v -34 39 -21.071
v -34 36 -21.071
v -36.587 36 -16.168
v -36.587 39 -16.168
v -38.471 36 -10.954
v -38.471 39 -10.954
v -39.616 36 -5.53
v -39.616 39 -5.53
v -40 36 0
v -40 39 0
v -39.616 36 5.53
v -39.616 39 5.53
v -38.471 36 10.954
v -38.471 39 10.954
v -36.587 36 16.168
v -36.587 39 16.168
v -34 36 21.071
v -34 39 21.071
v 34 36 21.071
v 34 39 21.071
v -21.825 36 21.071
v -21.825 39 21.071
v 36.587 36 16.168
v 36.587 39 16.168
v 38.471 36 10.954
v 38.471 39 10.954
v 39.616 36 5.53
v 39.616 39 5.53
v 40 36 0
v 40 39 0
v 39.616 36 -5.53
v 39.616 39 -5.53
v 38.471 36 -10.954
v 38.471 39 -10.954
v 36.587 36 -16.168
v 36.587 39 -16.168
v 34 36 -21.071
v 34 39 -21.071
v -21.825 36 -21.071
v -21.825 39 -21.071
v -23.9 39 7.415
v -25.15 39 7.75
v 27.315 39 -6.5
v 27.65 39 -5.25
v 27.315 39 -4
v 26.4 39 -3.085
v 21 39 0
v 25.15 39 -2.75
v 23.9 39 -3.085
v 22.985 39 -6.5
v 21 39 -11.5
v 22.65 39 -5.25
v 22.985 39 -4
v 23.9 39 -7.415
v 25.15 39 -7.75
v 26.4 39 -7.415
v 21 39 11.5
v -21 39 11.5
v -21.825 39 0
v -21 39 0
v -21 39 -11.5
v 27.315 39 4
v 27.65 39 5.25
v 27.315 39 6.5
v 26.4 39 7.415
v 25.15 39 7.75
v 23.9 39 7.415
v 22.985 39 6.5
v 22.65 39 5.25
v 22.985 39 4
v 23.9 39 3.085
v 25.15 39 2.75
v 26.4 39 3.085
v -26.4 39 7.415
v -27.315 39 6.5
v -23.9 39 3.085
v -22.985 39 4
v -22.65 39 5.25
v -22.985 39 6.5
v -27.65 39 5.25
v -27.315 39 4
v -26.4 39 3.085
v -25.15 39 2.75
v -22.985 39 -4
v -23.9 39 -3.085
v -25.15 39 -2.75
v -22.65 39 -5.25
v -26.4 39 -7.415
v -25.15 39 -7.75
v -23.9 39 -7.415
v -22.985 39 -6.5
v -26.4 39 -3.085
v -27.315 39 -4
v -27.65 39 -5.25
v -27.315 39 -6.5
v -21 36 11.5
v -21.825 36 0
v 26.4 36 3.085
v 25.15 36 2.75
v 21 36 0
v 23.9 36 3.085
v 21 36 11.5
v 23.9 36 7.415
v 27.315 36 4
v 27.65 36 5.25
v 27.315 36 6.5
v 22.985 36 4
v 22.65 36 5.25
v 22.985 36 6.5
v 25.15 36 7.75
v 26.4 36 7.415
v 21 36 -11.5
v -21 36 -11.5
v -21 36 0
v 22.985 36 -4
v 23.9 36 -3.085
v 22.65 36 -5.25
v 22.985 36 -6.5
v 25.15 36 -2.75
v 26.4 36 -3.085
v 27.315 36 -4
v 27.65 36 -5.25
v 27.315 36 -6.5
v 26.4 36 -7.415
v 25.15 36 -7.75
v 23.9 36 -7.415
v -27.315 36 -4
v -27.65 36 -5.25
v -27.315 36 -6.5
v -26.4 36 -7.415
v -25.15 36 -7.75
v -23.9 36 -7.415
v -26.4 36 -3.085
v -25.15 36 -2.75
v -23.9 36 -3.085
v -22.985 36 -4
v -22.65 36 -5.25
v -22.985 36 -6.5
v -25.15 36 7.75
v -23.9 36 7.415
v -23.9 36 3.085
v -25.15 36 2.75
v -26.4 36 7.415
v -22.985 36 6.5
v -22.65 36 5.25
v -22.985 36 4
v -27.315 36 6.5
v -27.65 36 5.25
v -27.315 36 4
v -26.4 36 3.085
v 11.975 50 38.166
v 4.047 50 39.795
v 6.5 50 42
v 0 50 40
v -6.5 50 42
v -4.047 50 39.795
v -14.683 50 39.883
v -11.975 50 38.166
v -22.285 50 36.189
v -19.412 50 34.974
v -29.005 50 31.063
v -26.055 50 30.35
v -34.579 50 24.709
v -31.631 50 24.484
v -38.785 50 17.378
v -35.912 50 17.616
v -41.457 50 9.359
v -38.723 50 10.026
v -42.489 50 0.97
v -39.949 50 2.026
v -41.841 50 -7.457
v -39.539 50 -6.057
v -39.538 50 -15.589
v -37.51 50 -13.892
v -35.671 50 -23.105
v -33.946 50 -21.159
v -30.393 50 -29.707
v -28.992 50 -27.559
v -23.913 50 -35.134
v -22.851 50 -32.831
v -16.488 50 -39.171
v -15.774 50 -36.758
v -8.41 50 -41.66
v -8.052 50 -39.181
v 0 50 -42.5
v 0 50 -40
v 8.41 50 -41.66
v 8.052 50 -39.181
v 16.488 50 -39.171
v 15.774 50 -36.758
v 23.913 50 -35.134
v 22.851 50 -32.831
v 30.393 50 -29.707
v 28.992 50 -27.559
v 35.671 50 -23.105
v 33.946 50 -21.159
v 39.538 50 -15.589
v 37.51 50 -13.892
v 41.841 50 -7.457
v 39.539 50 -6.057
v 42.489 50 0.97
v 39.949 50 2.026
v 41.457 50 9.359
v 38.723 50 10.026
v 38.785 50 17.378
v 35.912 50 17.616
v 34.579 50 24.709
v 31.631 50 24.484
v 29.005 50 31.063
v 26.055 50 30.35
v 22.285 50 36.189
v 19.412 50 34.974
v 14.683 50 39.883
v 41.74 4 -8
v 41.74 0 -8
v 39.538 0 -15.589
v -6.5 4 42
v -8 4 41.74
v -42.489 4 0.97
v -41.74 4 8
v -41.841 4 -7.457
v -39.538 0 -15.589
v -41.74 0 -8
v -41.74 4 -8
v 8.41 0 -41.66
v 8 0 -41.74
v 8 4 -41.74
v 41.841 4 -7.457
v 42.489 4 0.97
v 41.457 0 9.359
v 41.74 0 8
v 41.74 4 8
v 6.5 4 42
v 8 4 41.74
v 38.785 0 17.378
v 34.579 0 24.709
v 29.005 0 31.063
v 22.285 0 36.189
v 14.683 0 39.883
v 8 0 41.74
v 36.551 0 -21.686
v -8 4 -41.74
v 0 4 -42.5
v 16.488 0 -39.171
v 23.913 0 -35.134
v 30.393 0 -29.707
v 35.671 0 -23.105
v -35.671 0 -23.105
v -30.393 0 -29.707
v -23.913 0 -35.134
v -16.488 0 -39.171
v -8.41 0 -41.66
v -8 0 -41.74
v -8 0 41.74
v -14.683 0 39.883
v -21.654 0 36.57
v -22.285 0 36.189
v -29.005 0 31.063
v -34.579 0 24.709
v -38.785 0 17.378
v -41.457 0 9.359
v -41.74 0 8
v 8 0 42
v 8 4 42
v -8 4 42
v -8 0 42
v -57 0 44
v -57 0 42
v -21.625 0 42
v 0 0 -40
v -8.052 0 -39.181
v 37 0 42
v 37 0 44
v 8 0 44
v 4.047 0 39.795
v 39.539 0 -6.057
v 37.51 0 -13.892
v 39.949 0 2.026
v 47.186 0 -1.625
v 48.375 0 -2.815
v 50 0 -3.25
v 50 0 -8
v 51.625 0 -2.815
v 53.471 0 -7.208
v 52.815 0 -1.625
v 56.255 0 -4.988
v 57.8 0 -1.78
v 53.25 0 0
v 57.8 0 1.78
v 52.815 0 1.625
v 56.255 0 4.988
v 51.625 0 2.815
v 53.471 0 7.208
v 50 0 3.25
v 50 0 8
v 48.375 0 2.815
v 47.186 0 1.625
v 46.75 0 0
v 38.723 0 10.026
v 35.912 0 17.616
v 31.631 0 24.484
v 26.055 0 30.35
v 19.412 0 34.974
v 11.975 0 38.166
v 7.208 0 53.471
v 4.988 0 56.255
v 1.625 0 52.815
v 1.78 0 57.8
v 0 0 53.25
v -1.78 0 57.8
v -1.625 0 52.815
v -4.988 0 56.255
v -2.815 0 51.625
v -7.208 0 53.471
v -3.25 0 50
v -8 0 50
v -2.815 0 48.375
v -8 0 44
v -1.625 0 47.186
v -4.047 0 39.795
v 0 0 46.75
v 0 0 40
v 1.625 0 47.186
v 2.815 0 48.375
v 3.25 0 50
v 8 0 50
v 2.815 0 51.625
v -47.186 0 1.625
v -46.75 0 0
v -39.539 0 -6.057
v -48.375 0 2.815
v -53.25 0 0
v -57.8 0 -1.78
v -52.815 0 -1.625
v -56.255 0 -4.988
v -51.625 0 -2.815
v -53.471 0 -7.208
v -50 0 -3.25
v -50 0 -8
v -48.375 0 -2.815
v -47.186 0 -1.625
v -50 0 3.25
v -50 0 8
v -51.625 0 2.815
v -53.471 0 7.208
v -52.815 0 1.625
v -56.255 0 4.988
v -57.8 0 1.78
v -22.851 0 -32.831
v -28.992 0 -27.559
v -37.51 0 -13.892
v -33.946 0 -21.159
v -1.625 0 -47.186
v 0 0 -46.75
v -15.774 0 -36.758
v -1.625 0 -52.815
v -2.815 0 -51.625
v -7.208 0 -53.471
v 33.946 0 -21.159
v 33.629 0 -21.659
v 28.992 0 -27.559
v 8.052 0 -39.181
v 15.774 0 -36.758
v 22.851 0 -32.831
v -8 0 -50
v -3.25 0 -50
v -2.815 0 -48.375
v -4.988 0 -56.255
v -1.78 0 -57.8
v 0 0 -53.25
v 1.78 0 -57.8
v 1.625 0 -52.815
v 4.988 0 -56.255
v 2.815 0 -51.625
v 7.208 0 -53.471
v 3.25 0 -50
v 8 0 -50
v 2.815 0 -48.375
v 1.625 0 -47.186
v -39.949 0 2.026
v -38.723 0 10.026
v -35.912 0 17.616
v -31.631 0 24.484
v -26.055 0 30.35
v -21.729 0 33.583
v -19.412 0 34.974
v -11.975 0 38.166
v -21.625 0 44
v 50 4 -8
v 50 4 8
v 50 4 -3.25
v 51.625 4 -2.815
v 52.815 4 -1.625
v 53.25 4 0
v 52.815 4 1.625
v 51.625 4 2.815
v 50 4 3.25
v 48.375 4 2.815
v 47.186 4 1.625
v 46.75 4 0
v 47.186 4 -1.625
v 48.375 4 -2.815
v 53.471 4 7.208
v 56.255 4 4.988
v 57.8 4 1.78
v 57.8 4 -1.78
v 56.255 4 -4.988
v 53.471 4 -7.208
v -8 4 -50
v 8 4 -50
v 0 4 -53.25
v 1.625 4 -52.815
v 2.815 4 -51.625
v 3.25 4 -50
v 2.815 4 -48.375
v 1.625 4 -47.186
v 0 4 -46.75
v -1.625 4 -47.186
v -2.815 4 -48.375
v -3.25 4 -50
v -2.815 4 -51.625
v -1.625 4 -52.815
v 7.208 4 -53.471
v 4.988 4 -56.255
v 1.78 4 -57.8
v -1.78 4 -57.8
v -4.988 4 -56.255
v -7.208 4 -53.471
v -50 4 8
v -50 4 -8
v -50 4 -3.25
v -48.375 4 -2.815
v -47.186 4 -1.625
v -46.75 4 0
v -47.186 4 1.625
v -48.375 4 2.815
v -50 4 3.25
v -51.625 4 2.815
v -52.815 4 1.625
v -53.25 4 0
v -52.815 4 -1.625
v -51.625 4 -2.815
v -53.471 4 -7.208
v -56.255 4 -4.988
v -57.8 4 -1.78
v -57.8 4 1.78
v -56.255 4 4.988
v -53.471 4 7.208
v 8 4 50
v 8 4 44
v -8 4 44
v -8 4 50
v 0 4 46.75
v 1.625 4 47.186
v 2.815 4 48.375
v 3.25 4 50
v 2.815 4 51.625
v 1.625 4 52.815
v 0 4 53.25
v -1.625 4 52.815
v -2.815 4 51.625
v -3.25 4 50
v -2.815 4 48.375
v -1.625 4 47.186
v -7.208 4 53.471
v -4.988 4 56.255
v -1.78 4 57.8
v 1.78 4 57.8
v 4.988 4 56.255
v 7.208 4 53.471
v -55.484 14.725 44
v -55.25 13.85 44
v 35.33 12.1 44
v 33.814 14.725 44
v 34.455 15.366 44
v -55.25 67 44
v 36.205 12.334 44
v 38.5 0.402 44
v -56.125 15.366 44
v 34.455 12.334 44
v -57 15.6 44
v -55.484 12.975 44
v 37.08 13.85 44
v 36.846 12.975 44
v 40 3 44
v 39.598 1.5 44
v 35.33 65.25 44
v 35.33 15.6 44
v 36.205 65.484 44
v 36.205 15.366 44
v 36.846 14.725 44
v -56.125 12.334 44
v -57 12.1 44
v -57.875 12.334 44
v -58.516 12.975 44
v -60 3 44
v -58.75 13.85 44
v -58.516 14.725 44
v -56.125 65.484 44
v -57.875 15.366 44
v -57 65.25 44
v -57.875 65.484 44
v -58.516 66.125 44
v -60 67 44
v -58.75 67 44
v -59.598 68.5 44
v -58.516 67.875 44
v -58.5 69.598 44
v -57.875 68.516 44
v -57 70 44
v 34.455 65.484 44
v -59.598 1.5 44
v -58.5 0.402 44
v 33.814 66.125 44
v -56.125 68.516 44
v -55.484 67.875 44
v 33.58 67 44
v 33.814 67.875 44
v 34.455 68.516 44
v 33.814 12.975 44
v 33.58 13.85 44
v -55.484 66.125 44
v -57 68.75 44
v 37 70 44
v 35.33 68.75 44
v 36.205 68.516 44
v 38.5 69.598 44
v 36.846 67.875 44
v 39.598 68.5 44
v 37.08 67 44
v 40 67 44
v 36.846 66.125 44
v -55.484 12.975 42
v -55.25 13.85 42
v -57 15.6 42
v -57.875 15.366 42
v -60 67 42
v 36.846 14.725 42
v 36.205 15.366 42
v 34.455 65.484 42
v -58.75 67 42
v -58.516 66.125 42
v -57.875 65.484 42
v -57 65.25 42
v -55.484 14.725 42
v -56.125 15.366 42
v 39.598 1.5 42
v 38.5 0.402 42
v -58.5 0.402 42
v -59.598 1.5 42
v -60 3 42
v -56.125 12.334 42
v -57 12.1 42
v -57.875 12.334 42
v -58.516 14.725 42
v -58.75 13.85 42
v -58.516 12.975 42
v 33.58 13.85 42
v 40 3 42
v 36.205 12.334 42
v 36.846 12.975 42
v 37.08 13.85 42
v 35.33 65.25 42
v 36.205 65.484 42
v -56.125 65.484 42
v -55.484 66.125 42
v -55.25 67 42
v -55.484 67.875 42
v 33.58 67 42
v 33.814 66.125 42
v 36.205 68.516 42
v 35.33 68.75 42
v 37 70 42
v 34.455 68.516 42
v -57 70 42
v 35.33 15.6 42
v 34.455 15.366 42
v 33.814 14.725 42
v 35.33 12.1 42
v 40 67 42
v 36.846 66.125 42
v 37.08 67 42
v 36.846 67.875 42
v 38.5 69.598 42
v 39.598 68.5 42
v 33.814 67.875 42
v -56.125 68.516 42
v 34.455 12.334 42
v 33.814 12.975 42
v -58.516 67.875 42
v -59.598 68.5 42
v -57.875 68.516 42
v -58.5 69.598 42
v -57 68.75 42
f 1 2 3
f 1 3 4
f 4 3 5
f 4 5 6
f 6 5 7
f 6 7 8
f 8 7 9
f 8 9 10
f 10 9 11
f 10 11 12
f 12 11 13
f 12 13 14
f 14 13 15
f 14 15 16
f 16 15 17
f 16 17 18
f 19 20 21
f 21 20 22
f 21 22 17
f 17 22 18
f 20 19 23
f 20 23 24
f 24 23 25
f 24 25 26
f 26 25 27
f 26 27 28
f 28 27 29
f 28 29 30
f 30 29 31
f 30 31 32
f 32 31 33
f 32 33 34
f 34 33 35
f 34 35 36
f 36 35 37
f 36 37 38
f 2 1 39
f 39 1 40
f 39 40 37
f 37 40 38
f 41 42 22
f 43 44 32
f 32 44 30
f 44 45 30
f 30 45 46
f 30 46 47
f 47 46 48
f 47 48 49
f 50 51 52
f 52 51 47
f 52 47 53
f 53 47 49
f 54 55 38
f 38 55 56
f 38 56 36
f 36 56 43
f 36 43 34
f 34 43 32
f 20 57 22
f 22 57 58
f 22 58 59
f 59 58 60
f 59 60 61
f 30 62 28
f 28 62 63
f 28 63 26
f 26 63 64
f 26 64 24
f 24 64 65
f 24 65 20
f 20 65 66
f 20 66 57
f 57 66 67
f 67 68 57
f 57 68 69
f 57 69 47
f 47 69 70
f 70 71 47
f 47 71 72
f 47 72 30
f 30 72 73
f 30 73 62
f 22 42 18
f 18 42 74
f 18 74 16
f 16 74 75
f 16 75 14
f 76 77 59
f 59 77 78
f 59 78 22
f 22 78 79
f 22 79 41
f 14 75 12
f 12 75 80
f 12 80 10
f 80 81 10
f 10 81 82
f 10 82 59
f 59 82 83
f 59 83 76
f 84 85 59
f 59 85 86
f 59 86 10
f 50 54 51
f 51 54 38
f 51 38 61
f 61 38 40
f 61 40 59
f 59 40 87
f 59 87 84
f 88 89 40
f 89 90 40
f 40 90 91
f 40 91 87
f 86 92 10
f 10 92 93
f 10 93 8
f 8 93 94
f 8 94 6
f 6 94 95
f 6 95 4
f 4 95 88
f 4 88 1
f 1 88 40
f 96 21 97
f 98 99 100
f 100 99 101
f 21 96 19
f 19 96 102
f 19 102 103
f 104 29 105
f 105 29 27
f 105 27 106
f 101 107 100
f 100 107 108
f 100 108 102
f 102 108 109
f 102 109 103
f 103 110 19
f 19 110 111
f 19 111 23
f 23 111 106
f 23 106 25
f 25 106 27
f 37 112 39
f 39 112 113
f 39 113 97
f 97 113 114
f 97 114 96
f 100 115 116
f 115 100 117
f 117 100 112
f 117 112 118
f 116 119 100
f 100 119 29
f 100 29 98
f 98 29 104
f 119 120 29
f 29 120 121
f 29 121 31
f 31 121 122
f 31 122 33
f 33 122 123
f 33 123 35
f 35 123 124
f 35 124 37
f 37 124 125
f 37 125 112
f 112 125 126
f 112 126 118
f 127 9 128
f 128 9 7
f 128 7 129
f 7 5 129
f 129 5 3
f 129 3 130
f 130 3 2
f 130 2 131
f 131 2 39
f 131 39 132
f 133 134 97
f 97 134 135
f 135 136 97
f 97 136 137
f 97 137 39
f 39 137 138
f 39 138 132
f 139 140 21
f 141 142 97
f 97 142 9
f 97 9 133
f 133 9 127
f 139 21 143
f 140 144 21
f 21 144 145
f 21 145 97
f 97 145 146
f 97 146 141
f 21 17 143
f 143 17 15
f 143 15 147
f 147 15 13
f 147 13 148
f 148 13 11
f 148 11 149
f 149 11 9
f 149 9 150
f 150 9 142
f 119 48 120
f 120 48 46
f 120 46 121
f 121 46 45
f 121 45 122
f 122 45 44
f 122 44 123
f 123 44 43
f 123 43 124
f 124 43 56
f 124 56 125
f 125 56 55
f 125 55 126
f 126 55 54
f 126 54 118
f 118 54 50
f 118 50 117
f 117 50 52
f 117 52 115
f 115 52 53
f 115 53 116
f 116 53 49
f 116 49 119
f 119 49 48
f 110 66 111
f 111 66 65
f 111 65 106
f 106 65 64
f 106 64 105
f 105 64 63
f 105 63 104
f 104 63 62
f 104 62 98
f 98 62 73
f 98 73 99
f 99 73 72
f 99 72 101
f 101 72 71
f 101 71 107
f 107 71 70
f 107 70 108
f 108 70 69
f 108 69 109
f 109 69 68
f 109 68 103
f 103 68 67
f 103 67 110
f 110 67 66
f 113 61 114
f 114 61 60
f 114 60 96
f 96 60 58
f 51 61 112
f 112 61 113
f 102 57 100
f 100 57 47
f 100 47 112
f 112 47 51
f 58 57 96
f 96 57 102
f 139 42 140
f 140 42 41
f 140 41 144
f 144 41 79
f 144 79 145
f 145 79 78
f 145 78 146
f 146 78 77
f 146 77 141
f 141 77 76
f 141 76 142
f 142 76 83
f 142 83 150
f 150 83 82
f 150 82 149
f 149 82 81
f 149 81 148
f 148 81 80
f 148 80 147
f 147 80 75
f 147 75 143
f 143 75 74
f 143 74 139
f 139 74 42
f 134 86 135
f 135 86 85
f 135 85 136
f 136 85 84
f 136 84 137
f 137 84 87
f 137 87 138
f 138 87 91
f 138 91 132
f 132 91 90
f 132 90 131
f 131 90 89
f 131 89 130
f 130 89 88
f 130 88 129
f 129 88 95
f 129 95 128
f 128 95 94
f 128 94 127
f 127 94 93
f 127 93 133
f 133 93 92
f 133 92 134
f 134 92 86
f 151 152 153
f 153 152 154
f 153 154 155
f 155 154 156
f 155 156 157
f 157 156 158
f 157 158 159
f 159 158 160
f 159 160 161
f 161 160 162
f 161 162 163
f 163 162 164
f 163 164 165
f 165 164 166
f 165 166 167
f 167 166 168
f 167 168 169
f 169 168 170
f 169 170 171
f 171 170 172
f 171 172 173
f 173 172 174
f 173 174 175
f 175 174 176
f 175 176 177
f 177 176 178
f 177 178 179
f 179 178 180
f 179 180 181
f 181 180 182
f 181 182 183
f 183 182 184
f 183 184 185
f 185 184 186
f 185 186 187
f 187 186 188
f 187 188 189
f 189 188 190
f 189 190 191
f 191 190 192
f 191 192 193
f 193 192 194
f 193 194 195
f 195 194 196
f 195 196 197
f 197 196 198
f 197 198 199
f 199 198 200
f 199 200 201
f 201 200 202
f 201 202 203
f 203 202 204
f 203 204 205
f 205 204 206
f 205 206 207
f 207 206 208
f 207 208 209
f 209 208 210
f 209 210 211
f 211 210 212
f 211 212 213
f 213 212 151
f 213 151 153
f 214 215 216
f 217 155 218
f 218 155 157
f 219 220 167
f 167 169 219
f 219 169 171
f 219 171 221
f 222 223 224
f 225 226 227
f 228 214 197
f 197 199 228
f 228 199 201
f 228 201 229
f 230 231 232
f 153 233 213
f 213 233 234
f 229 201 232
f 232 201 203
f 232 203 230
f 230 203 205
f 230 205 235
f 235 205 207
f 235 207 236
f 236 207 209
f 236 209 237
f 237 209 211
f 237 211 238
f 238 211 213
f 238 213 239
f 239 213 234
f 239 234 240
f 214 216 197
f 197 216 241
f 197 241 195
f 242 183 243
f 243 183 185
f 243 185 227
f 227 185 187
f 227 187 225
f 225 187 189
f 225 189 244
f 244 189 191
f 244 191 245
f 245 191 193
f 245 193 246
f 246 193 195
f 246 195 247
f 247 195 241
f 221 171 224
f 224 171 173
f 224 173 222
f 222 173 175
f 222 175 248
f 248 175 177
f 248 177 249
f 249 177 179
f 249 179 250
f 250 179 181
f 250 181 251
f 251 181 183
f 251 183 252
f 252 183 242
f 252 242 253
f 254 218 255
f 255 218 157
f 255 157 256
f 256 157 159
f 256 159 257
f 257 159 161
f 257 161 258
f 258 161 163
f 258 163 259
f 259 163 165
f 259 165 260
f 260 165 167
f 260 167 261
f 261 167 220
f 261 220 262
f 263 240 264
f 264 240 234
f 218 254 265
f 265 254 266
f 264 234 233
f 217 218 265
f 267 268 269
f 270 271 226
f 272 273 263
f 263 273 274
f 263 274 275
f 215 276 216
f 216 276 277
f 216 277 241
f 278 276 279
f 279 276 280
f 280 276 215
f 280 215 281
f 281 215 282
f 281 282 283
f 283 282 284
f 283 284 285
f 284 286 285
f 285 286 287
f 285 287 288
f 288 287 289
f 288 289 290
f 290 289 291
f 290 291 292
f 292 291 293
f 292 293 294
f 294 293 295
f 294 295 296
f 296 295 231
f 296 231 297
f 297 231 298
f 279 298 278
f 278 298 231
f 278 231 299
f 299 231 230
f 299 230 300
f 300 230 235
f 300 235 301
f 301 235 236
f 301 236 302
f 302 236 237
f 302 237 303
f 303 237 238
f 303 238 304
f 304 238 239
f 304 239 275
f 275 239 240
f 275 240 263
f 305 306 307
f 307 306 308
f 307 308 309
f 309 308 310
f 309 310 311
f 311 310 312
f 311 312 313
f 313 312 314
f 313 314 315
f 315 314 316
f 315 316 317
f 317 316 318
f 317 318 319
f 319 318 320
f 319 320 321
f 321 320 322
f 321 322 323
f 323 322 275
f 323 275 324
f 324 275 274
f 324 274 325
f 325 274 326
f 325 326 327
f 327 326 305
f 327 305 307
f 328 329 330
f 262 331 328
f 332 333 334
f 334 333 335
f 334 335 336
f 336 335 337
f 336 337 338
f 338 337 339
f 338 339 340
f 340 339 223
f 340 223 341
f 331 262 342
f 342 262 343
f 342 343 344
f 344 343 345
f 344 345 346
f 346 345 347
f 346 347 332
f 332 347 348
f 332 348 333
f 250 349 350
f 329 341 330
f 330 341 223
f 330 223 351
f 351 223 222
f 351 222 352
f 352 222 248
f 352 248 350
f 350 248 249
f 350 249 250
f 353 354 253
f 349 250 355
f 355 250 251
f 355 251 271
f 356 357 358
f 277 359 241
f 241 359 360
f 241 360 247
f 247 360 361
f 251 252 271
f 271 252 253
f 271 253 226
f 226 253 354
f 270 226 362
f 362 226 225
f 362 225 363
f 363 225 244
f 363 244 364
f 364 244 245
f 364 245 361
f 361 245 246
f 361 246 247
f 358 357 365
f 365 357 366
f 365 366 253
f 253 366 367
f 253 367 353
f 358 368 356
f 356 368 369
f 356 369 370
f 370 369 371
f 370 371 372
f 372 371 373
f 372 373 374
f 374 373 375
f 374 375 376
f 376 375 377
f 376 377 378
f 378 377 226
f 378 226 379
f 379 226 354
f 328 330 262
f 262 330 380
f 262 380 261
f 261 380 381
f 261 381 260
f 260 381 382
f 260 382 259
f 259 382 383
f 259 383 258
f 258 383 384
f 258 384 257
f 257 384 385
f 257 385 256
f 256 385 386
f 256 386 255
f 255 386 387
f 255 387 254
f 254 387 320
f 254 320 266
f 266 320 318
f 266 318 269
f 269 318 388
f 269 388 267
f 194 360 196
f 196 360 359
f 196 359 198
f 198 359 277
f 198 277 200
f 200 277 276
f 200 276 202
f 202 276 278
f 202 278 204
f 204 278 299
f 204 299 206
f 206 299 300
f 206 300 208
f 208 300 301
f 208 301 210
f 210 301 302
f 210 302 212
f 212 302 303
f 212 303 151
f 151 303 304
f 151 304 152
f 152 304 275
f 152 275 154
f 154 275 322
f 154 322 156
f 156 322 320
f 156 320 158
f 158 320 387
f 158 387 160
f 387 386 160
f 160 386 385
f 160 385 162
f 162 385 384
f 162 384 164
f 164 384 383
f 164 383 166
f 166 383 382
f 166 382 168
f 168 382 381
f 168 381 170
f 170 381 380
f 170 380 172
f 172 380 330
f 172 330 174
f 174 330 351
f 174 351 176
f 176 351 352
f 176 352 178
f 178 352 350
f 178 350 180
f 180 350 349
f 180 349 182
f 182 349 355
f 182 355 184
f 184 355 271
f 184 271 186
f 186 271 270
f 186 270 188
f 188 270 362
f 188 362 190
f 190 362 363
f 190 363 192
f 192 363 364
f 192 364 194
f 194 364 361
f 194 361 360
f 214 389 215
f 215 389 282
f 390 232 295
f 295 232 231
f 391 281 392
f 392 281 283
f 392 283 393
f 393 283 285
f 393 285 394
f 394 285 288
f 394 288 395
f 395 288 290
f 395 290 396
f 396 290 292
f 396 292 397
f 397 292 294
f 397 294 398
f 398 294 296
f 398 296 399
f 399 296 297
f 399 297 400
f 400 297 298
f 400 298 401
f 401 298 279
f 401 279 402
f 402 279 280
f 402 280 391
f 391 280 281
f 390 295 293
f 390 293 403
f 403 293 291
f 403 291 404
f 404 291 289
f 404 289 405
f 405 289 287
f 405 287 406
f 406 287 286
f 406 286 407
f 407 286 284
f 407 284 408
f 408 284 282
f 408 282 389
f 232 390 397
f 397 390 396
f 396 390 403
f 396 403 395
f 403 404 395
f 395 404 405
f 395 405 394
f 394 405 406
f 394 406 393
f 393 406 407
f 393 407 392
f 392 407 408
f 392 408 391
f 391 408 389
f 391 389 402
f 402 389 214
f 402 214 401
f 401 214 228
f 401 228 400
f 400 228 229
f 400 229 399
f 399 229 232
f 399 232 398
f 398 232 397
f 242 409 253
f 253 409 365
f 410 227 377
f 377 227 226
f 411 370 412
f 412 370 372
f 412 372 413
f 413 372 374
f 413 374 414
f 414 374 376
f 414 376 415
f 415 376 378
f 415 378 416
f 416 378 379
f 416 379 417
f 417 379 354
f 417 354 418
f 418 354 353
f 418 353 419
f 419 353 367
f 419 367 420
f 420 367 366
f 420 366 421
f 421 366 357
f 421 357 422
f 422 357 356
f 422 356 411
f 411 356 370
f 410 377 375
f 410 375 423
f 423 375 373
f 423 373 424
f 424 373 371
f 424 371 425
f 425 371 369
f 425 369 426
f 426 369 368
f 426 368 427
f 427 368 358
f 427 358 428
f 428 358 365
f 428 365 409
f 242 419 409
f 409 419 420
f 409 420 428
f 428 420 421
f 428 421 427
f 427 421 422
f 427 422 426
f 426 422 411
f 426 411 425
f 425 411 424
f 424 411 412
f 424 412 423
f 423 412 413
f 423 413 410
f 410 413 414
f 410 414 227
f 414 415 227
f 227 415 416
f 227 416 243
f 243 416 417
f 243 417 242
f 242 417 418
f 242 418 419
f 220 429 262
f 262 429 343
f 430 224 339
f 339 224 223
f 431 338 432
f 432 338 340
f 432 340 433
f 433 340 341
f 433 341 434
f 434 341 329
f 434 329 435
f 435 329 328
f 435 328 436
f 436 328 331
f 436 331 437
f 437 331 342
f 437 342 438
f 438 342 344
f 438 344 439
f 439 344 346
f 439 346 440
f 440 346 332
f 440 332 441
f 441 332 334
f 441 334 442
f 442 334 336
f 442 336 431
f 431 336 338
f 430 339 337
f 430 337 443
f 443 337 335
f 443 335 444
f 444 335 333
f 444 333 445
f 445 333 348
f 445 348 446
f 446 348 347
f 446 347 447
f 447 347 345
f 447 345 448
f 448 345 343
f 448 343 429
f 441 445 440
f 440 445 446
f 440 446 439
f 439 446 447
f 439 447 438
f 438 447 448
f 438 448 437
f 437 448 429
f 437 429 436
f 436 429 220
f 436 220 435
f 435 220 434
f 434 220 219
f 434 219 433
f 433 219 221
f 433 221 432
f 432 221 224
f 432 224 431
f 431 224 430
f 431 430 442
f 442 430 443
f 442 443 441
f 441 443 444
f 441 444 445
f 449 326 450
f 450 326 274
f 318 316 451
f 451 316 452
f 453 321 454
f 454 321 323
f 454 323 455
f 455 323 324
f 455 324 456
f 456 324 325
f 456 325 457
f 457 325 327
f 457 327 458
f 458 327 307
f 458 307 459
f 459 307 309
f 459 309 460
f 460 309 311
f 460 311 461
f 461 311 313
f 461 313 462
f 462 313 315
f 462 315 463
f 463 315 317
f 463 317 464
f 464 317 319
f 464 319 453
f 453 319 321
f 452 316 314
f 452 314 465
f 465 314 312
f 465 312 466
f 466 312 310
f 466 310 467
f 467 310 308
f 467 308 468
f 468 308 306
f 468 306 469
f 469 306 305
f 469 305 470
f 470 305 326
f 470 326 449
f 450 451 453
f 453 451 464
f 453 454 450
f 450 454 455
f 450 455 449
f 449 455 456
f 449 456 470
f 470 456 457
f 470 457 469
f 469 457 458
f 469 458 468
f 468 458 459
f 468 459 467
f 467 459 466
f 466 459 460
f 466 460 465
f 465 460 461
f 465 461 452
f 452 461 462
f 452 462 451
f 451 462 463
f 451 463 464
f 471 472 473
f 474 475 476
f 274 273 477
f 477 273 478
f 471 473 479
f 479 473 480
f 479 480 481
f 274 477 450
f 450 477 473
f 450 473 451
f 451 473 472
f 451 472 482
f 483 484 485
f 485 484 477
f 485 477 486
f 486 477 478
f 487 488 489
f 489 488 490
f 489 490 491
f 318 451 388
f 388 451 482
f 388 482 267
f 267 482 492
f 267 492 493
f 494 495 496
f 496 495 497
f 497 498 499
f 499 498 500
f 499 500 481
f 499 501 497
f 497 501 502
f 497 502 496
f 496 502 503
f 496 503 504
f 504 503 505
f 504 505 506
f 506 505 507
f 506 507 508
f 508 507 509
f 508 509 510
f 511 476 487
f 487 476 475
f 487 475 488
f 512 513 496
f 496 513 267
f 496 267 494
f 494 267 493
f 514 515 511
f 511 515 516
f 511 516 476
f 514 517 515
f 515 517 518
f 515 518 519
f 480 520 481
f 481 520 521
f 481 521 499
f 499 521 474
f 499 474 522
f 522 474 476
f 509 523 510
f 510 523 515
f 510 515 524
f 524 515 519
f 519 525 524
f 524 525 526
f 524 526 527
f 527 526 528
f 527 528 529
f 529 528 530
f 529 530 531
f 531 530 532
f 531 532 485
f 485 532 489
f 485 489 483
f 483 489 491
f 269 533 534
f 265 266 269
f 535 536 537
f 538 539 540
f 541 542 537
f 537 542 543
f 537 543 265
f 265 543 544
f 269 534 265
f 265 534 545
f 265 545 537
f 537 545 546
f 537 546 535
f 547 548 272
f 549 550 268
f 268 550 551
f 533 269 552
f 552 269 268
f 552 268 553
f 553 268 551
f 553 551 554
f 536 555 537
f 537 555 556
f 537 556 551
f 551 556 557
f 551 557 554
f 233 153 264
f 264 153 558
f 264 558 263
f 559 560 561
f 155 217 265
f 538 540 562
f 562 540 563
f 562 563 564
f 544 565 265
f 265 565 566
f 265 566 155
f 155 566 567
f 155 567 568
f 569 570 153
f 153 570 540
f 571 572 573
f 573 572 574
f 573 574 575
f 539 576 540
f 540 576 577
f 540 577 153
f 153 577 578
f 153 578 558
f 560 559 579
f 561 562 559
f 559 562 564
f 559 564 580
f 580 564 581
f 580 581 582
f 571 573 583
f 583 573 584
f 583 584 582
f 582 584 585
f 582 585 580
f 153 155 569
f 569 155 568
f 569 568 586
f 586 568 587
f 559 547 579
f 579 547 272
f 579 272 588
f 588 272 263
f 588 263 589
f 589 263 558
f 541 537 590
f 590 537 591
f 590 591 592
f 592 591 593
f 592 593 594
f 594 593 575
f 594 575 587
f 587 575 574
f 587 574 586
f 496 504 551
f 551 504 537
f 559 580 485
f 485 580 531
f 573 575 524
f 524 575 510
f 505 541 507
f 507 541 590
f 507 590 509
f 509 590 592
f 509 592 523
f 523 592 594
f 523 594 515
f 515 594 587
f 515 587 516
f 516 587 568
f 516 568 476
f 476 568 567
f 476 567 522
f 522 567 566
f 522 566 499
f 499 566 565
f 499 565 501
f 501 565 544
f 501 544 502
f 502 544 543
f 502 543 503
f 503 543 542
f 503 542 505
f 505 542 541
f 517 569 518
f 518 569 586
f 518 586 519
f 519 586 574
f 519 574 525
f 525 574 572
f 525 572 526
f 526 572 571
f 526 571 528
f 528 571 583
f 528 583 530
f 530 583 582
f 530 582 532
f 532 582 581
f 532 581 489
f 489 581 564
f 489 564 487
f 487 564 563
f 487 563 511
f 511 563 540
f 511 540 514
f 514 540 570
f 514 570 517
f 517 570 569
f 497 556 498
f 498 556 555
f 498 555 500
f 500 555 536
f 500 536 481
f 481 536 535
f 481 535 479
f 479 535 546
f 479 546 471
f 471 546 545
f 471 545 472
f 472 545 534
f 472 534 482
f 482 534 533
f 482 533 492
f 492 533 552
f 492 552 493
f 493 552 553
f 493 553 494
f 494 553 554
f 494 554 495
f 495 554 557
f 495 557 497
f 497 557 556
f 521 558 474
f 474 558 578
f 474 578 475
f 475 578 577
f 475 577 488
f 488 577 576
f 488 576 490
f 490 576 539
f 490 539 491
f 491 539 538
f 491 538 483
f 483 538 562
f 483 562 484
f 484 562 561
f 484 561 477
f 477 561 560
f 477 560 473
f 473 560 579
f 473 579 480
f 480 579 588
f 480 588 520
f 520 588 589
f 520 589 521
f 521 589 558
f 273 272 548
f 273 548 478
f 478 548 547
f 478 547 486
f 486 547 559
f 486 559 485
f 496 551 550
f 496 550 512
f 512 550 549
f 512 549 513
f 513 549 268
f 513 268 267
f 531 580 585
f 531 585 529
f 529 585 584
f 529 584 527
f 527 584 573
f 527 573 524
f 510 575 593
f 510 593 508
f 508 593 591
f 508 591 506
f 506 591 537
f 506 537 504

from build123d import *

# Parameters (mm, degrees)
SKETCH1_R           = 42.5
SKETCH1_R_2         = 40
BOSS_EXTRUDE1_DEPTH = 50
SKETCH2_R           = 3.25
BOSS_EXTRUDE2_DEPTH = 4
CIRPATTERN1_COUNT   = 4
BOSS_EXTRUDE3_DEPTH = 3
SKETCH3_R           = 2.5
SKETCH3_W           = 42
SKETCH3_H           = 23
CUT_EXTRUDE1_DEPTH  = 3
BOSS_EXTRUDE4_START = 42
SKETCH5_W           = 100
SKETCH5_H           = 70
SKETCH5_R           = 1.75
BOSS_EXTRUDE4_DEPTH = 2
FILLET1_R           = 3


with BuildPart() as part:
    # Sketch1 → Boss-Extrude1 (new body)
    with BuildSketch(Plane(origin=(0, 0, 0), x_dir=(1, 0, 0), z_dir=(0, 1, 0))):
        with Locations(Location((0, 0, 0), (0, 0, 270))):
            Circle(SKETCH1_R)
        with Locations(Location((0, 0, 0), (0, 0, 270))):
            Circle(SKETCH1_R_2, mode=Mode.SUBTRACT)
    extrude(amount=BOSS_EXTRUDE1_DEPTH)

    # Sketch2 → Boss-Extrude2 (add)
    with BuildSketch(Plane.XZ):
        with BuildLine():
            Line((50.000268327, 8), (41.740268327, 8))
            ThreePointArc((41.740268327, 8), (42.309640768, 4.017996771), (42.5, 0))
            ThreePointArc((42.5, 0), (42.309640768, -4.017996771), (41.740268327, -8))
            Line((41.740268327, -8), (50.000268327, -8))
            ThreePointArc((50.000268327, -8), (58.000268327, 0), (50.000268327, 8))
        make_face()
        with Locations(Location((50.000268327, 0, 0), (0, 0, 270))):
            Circle(SKETCH2_R, mode=Mode.SUBTRACT)
    boss_extrude2 = extrude(amount=-BOSS_EXTRUDE2_DEPTH)

    # CirPattern1: Boss-Extrude2 ×4 about axis
    cirpattern1_axis = Axis((0, 0, 0), (0, 1, 0))
    for i in range(1, CIRPATTERN1_COUNT):
        add(boss_extrude2.rotate(cirpattern1_axis, i * 360 / CIRPATTERN1_COUNT))

    # Sketch5 → Boss-Extrude4 (add)
    with BuildSketch(Plane.XY.offset(BOSS_EXTRUDE4_START)):
        with Locations((-10, 35)):
            Rectangle(SKETCH5_W, SKETCH5_H)
        with Locations((-57, 67)):
            Circle(SKETCH5_R, mode=Mode.SUBTRACT)
        with Locations((35.33, 67)):
            Circle(SKETCH5_R, mode=Mode.SUBTRACT)
        with Locations((-57, 13.85)):
            Circle(SKETCH5_R, mode=Mode.SUBTRACT)
        with Locations((35.33, 13.85)):
            Circle(SKETCH5_R, mode=Mode.SUBTRACT)
    extrude(amount=BOSS_EXTRUDE4_DEPTH)

    # Fillet1
    fillet1_edges = [part.edges().sort_by_distance(p)[0] for p in [
        (-60, 0, 43),
        (-60, 70, 43),
        (40, 0, 43),
        (40, 70, 43),
    ]]
    fillet(fillet1_edges, radius=FILLET1_R)


with BuildPart() as body_2:
    # Sketch4 → Boss-Extrude3 (new body)
    with BuildSketch(Plane(origin=(0, 36, 0), x_dir=(1, 0, 0), z_dir=(0, 1, 0))):
        with BuildLine():
            Line((34, -21.071307506), (-34, -21.071307506))
            ThreePointArc((-34, -21.071307506), (-40, 0), (-34, 21.071307506))
            Line((-34, 21.071307506), (34, 21.071307506))
            ThreePointArc((34, 21.071307506), (40, 0), (34, -21.071307506))
        make_face()
    extrude(amount=BOSS_EXTRUDE3_DEPTH)

    # Sketch3 → Cut-Extrude1 (cut)
    with BuildSketch(Plane(origin=(0, 39, 0), x_dir=(1, 0, 0), z_dir=(0, 1, 0))):
        with Locations(Location((25.15, 5.25, 0), (0, 0, 270))):
            Circle(SKETCH3_R)
        with Locations(Location((25.15, -5.25, 0), (0, 0, 270))):
            Circle(SKETCH3_R)
        with Locations(Location((-25.15, -5.25, 0), (0, 0, 270))):
            Circle(SKETCH3_R)
        with Locations(Location((-25.15, 5.25, 0), (0, 0, 270))):
            Circle(SKETCH3_R)
        Rectangle(SKETCH3_W, SKETCH3_H)
    extrude(amount=-CUT_EXTRUDE1_DEPTH, mode=Mode.SUBTRACT)


solid = Compound([part.part, body_2.part])
